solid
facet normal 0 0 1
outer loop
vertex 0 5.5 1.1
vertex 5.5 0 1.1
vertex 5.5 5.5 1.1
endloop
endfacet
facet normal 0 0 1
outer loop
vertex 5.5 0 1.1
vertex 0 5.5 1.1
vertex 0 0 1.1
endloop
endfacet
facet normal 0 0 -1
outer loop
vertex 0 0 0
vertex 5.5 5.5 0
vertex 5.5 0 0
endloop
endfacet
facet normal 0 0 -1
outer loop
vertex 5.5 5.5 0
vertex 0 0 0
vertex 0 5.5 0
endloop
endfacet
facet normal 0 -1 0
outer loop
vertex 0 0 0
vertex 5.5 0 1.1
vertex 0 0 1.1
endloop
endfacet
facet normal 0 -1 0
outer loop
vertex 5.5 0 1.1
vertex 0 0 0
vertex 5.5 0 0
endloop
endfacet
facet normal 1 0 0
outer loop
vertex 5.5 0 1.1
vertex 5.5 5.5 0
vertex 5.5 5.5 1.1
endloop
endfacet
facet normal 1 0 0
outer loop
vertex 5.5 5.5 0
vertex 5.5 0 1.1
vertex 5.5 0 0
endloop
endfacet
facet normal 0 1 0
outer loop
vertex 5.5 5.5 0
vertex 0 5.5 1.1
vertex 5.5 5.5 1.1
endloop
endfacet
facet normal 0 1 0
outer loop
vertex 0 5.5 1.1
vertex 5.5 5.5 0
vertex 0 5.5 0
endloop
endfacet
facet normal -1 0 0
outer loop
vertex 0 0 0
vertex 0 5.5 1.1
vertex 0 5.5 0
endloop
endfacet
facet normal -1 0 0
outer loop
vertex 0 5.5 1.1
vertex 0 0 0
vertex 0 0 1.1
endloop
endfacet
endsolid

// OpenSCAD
/* Warning, this is a very basic generator with a lot of approximation 
input data : [TFBGA, 9LX, 5.5x5.5x1.1mm, 82, , A, C04-00492A]
generated by com.zoubworld.electronics.cad.model3d.Basic
Date : Sun Feb 15 10:50:48 CET 2026
*/

//body
color("black")
translate([0,0,0])
cube([5.5,5.5,1.1], center=false);
